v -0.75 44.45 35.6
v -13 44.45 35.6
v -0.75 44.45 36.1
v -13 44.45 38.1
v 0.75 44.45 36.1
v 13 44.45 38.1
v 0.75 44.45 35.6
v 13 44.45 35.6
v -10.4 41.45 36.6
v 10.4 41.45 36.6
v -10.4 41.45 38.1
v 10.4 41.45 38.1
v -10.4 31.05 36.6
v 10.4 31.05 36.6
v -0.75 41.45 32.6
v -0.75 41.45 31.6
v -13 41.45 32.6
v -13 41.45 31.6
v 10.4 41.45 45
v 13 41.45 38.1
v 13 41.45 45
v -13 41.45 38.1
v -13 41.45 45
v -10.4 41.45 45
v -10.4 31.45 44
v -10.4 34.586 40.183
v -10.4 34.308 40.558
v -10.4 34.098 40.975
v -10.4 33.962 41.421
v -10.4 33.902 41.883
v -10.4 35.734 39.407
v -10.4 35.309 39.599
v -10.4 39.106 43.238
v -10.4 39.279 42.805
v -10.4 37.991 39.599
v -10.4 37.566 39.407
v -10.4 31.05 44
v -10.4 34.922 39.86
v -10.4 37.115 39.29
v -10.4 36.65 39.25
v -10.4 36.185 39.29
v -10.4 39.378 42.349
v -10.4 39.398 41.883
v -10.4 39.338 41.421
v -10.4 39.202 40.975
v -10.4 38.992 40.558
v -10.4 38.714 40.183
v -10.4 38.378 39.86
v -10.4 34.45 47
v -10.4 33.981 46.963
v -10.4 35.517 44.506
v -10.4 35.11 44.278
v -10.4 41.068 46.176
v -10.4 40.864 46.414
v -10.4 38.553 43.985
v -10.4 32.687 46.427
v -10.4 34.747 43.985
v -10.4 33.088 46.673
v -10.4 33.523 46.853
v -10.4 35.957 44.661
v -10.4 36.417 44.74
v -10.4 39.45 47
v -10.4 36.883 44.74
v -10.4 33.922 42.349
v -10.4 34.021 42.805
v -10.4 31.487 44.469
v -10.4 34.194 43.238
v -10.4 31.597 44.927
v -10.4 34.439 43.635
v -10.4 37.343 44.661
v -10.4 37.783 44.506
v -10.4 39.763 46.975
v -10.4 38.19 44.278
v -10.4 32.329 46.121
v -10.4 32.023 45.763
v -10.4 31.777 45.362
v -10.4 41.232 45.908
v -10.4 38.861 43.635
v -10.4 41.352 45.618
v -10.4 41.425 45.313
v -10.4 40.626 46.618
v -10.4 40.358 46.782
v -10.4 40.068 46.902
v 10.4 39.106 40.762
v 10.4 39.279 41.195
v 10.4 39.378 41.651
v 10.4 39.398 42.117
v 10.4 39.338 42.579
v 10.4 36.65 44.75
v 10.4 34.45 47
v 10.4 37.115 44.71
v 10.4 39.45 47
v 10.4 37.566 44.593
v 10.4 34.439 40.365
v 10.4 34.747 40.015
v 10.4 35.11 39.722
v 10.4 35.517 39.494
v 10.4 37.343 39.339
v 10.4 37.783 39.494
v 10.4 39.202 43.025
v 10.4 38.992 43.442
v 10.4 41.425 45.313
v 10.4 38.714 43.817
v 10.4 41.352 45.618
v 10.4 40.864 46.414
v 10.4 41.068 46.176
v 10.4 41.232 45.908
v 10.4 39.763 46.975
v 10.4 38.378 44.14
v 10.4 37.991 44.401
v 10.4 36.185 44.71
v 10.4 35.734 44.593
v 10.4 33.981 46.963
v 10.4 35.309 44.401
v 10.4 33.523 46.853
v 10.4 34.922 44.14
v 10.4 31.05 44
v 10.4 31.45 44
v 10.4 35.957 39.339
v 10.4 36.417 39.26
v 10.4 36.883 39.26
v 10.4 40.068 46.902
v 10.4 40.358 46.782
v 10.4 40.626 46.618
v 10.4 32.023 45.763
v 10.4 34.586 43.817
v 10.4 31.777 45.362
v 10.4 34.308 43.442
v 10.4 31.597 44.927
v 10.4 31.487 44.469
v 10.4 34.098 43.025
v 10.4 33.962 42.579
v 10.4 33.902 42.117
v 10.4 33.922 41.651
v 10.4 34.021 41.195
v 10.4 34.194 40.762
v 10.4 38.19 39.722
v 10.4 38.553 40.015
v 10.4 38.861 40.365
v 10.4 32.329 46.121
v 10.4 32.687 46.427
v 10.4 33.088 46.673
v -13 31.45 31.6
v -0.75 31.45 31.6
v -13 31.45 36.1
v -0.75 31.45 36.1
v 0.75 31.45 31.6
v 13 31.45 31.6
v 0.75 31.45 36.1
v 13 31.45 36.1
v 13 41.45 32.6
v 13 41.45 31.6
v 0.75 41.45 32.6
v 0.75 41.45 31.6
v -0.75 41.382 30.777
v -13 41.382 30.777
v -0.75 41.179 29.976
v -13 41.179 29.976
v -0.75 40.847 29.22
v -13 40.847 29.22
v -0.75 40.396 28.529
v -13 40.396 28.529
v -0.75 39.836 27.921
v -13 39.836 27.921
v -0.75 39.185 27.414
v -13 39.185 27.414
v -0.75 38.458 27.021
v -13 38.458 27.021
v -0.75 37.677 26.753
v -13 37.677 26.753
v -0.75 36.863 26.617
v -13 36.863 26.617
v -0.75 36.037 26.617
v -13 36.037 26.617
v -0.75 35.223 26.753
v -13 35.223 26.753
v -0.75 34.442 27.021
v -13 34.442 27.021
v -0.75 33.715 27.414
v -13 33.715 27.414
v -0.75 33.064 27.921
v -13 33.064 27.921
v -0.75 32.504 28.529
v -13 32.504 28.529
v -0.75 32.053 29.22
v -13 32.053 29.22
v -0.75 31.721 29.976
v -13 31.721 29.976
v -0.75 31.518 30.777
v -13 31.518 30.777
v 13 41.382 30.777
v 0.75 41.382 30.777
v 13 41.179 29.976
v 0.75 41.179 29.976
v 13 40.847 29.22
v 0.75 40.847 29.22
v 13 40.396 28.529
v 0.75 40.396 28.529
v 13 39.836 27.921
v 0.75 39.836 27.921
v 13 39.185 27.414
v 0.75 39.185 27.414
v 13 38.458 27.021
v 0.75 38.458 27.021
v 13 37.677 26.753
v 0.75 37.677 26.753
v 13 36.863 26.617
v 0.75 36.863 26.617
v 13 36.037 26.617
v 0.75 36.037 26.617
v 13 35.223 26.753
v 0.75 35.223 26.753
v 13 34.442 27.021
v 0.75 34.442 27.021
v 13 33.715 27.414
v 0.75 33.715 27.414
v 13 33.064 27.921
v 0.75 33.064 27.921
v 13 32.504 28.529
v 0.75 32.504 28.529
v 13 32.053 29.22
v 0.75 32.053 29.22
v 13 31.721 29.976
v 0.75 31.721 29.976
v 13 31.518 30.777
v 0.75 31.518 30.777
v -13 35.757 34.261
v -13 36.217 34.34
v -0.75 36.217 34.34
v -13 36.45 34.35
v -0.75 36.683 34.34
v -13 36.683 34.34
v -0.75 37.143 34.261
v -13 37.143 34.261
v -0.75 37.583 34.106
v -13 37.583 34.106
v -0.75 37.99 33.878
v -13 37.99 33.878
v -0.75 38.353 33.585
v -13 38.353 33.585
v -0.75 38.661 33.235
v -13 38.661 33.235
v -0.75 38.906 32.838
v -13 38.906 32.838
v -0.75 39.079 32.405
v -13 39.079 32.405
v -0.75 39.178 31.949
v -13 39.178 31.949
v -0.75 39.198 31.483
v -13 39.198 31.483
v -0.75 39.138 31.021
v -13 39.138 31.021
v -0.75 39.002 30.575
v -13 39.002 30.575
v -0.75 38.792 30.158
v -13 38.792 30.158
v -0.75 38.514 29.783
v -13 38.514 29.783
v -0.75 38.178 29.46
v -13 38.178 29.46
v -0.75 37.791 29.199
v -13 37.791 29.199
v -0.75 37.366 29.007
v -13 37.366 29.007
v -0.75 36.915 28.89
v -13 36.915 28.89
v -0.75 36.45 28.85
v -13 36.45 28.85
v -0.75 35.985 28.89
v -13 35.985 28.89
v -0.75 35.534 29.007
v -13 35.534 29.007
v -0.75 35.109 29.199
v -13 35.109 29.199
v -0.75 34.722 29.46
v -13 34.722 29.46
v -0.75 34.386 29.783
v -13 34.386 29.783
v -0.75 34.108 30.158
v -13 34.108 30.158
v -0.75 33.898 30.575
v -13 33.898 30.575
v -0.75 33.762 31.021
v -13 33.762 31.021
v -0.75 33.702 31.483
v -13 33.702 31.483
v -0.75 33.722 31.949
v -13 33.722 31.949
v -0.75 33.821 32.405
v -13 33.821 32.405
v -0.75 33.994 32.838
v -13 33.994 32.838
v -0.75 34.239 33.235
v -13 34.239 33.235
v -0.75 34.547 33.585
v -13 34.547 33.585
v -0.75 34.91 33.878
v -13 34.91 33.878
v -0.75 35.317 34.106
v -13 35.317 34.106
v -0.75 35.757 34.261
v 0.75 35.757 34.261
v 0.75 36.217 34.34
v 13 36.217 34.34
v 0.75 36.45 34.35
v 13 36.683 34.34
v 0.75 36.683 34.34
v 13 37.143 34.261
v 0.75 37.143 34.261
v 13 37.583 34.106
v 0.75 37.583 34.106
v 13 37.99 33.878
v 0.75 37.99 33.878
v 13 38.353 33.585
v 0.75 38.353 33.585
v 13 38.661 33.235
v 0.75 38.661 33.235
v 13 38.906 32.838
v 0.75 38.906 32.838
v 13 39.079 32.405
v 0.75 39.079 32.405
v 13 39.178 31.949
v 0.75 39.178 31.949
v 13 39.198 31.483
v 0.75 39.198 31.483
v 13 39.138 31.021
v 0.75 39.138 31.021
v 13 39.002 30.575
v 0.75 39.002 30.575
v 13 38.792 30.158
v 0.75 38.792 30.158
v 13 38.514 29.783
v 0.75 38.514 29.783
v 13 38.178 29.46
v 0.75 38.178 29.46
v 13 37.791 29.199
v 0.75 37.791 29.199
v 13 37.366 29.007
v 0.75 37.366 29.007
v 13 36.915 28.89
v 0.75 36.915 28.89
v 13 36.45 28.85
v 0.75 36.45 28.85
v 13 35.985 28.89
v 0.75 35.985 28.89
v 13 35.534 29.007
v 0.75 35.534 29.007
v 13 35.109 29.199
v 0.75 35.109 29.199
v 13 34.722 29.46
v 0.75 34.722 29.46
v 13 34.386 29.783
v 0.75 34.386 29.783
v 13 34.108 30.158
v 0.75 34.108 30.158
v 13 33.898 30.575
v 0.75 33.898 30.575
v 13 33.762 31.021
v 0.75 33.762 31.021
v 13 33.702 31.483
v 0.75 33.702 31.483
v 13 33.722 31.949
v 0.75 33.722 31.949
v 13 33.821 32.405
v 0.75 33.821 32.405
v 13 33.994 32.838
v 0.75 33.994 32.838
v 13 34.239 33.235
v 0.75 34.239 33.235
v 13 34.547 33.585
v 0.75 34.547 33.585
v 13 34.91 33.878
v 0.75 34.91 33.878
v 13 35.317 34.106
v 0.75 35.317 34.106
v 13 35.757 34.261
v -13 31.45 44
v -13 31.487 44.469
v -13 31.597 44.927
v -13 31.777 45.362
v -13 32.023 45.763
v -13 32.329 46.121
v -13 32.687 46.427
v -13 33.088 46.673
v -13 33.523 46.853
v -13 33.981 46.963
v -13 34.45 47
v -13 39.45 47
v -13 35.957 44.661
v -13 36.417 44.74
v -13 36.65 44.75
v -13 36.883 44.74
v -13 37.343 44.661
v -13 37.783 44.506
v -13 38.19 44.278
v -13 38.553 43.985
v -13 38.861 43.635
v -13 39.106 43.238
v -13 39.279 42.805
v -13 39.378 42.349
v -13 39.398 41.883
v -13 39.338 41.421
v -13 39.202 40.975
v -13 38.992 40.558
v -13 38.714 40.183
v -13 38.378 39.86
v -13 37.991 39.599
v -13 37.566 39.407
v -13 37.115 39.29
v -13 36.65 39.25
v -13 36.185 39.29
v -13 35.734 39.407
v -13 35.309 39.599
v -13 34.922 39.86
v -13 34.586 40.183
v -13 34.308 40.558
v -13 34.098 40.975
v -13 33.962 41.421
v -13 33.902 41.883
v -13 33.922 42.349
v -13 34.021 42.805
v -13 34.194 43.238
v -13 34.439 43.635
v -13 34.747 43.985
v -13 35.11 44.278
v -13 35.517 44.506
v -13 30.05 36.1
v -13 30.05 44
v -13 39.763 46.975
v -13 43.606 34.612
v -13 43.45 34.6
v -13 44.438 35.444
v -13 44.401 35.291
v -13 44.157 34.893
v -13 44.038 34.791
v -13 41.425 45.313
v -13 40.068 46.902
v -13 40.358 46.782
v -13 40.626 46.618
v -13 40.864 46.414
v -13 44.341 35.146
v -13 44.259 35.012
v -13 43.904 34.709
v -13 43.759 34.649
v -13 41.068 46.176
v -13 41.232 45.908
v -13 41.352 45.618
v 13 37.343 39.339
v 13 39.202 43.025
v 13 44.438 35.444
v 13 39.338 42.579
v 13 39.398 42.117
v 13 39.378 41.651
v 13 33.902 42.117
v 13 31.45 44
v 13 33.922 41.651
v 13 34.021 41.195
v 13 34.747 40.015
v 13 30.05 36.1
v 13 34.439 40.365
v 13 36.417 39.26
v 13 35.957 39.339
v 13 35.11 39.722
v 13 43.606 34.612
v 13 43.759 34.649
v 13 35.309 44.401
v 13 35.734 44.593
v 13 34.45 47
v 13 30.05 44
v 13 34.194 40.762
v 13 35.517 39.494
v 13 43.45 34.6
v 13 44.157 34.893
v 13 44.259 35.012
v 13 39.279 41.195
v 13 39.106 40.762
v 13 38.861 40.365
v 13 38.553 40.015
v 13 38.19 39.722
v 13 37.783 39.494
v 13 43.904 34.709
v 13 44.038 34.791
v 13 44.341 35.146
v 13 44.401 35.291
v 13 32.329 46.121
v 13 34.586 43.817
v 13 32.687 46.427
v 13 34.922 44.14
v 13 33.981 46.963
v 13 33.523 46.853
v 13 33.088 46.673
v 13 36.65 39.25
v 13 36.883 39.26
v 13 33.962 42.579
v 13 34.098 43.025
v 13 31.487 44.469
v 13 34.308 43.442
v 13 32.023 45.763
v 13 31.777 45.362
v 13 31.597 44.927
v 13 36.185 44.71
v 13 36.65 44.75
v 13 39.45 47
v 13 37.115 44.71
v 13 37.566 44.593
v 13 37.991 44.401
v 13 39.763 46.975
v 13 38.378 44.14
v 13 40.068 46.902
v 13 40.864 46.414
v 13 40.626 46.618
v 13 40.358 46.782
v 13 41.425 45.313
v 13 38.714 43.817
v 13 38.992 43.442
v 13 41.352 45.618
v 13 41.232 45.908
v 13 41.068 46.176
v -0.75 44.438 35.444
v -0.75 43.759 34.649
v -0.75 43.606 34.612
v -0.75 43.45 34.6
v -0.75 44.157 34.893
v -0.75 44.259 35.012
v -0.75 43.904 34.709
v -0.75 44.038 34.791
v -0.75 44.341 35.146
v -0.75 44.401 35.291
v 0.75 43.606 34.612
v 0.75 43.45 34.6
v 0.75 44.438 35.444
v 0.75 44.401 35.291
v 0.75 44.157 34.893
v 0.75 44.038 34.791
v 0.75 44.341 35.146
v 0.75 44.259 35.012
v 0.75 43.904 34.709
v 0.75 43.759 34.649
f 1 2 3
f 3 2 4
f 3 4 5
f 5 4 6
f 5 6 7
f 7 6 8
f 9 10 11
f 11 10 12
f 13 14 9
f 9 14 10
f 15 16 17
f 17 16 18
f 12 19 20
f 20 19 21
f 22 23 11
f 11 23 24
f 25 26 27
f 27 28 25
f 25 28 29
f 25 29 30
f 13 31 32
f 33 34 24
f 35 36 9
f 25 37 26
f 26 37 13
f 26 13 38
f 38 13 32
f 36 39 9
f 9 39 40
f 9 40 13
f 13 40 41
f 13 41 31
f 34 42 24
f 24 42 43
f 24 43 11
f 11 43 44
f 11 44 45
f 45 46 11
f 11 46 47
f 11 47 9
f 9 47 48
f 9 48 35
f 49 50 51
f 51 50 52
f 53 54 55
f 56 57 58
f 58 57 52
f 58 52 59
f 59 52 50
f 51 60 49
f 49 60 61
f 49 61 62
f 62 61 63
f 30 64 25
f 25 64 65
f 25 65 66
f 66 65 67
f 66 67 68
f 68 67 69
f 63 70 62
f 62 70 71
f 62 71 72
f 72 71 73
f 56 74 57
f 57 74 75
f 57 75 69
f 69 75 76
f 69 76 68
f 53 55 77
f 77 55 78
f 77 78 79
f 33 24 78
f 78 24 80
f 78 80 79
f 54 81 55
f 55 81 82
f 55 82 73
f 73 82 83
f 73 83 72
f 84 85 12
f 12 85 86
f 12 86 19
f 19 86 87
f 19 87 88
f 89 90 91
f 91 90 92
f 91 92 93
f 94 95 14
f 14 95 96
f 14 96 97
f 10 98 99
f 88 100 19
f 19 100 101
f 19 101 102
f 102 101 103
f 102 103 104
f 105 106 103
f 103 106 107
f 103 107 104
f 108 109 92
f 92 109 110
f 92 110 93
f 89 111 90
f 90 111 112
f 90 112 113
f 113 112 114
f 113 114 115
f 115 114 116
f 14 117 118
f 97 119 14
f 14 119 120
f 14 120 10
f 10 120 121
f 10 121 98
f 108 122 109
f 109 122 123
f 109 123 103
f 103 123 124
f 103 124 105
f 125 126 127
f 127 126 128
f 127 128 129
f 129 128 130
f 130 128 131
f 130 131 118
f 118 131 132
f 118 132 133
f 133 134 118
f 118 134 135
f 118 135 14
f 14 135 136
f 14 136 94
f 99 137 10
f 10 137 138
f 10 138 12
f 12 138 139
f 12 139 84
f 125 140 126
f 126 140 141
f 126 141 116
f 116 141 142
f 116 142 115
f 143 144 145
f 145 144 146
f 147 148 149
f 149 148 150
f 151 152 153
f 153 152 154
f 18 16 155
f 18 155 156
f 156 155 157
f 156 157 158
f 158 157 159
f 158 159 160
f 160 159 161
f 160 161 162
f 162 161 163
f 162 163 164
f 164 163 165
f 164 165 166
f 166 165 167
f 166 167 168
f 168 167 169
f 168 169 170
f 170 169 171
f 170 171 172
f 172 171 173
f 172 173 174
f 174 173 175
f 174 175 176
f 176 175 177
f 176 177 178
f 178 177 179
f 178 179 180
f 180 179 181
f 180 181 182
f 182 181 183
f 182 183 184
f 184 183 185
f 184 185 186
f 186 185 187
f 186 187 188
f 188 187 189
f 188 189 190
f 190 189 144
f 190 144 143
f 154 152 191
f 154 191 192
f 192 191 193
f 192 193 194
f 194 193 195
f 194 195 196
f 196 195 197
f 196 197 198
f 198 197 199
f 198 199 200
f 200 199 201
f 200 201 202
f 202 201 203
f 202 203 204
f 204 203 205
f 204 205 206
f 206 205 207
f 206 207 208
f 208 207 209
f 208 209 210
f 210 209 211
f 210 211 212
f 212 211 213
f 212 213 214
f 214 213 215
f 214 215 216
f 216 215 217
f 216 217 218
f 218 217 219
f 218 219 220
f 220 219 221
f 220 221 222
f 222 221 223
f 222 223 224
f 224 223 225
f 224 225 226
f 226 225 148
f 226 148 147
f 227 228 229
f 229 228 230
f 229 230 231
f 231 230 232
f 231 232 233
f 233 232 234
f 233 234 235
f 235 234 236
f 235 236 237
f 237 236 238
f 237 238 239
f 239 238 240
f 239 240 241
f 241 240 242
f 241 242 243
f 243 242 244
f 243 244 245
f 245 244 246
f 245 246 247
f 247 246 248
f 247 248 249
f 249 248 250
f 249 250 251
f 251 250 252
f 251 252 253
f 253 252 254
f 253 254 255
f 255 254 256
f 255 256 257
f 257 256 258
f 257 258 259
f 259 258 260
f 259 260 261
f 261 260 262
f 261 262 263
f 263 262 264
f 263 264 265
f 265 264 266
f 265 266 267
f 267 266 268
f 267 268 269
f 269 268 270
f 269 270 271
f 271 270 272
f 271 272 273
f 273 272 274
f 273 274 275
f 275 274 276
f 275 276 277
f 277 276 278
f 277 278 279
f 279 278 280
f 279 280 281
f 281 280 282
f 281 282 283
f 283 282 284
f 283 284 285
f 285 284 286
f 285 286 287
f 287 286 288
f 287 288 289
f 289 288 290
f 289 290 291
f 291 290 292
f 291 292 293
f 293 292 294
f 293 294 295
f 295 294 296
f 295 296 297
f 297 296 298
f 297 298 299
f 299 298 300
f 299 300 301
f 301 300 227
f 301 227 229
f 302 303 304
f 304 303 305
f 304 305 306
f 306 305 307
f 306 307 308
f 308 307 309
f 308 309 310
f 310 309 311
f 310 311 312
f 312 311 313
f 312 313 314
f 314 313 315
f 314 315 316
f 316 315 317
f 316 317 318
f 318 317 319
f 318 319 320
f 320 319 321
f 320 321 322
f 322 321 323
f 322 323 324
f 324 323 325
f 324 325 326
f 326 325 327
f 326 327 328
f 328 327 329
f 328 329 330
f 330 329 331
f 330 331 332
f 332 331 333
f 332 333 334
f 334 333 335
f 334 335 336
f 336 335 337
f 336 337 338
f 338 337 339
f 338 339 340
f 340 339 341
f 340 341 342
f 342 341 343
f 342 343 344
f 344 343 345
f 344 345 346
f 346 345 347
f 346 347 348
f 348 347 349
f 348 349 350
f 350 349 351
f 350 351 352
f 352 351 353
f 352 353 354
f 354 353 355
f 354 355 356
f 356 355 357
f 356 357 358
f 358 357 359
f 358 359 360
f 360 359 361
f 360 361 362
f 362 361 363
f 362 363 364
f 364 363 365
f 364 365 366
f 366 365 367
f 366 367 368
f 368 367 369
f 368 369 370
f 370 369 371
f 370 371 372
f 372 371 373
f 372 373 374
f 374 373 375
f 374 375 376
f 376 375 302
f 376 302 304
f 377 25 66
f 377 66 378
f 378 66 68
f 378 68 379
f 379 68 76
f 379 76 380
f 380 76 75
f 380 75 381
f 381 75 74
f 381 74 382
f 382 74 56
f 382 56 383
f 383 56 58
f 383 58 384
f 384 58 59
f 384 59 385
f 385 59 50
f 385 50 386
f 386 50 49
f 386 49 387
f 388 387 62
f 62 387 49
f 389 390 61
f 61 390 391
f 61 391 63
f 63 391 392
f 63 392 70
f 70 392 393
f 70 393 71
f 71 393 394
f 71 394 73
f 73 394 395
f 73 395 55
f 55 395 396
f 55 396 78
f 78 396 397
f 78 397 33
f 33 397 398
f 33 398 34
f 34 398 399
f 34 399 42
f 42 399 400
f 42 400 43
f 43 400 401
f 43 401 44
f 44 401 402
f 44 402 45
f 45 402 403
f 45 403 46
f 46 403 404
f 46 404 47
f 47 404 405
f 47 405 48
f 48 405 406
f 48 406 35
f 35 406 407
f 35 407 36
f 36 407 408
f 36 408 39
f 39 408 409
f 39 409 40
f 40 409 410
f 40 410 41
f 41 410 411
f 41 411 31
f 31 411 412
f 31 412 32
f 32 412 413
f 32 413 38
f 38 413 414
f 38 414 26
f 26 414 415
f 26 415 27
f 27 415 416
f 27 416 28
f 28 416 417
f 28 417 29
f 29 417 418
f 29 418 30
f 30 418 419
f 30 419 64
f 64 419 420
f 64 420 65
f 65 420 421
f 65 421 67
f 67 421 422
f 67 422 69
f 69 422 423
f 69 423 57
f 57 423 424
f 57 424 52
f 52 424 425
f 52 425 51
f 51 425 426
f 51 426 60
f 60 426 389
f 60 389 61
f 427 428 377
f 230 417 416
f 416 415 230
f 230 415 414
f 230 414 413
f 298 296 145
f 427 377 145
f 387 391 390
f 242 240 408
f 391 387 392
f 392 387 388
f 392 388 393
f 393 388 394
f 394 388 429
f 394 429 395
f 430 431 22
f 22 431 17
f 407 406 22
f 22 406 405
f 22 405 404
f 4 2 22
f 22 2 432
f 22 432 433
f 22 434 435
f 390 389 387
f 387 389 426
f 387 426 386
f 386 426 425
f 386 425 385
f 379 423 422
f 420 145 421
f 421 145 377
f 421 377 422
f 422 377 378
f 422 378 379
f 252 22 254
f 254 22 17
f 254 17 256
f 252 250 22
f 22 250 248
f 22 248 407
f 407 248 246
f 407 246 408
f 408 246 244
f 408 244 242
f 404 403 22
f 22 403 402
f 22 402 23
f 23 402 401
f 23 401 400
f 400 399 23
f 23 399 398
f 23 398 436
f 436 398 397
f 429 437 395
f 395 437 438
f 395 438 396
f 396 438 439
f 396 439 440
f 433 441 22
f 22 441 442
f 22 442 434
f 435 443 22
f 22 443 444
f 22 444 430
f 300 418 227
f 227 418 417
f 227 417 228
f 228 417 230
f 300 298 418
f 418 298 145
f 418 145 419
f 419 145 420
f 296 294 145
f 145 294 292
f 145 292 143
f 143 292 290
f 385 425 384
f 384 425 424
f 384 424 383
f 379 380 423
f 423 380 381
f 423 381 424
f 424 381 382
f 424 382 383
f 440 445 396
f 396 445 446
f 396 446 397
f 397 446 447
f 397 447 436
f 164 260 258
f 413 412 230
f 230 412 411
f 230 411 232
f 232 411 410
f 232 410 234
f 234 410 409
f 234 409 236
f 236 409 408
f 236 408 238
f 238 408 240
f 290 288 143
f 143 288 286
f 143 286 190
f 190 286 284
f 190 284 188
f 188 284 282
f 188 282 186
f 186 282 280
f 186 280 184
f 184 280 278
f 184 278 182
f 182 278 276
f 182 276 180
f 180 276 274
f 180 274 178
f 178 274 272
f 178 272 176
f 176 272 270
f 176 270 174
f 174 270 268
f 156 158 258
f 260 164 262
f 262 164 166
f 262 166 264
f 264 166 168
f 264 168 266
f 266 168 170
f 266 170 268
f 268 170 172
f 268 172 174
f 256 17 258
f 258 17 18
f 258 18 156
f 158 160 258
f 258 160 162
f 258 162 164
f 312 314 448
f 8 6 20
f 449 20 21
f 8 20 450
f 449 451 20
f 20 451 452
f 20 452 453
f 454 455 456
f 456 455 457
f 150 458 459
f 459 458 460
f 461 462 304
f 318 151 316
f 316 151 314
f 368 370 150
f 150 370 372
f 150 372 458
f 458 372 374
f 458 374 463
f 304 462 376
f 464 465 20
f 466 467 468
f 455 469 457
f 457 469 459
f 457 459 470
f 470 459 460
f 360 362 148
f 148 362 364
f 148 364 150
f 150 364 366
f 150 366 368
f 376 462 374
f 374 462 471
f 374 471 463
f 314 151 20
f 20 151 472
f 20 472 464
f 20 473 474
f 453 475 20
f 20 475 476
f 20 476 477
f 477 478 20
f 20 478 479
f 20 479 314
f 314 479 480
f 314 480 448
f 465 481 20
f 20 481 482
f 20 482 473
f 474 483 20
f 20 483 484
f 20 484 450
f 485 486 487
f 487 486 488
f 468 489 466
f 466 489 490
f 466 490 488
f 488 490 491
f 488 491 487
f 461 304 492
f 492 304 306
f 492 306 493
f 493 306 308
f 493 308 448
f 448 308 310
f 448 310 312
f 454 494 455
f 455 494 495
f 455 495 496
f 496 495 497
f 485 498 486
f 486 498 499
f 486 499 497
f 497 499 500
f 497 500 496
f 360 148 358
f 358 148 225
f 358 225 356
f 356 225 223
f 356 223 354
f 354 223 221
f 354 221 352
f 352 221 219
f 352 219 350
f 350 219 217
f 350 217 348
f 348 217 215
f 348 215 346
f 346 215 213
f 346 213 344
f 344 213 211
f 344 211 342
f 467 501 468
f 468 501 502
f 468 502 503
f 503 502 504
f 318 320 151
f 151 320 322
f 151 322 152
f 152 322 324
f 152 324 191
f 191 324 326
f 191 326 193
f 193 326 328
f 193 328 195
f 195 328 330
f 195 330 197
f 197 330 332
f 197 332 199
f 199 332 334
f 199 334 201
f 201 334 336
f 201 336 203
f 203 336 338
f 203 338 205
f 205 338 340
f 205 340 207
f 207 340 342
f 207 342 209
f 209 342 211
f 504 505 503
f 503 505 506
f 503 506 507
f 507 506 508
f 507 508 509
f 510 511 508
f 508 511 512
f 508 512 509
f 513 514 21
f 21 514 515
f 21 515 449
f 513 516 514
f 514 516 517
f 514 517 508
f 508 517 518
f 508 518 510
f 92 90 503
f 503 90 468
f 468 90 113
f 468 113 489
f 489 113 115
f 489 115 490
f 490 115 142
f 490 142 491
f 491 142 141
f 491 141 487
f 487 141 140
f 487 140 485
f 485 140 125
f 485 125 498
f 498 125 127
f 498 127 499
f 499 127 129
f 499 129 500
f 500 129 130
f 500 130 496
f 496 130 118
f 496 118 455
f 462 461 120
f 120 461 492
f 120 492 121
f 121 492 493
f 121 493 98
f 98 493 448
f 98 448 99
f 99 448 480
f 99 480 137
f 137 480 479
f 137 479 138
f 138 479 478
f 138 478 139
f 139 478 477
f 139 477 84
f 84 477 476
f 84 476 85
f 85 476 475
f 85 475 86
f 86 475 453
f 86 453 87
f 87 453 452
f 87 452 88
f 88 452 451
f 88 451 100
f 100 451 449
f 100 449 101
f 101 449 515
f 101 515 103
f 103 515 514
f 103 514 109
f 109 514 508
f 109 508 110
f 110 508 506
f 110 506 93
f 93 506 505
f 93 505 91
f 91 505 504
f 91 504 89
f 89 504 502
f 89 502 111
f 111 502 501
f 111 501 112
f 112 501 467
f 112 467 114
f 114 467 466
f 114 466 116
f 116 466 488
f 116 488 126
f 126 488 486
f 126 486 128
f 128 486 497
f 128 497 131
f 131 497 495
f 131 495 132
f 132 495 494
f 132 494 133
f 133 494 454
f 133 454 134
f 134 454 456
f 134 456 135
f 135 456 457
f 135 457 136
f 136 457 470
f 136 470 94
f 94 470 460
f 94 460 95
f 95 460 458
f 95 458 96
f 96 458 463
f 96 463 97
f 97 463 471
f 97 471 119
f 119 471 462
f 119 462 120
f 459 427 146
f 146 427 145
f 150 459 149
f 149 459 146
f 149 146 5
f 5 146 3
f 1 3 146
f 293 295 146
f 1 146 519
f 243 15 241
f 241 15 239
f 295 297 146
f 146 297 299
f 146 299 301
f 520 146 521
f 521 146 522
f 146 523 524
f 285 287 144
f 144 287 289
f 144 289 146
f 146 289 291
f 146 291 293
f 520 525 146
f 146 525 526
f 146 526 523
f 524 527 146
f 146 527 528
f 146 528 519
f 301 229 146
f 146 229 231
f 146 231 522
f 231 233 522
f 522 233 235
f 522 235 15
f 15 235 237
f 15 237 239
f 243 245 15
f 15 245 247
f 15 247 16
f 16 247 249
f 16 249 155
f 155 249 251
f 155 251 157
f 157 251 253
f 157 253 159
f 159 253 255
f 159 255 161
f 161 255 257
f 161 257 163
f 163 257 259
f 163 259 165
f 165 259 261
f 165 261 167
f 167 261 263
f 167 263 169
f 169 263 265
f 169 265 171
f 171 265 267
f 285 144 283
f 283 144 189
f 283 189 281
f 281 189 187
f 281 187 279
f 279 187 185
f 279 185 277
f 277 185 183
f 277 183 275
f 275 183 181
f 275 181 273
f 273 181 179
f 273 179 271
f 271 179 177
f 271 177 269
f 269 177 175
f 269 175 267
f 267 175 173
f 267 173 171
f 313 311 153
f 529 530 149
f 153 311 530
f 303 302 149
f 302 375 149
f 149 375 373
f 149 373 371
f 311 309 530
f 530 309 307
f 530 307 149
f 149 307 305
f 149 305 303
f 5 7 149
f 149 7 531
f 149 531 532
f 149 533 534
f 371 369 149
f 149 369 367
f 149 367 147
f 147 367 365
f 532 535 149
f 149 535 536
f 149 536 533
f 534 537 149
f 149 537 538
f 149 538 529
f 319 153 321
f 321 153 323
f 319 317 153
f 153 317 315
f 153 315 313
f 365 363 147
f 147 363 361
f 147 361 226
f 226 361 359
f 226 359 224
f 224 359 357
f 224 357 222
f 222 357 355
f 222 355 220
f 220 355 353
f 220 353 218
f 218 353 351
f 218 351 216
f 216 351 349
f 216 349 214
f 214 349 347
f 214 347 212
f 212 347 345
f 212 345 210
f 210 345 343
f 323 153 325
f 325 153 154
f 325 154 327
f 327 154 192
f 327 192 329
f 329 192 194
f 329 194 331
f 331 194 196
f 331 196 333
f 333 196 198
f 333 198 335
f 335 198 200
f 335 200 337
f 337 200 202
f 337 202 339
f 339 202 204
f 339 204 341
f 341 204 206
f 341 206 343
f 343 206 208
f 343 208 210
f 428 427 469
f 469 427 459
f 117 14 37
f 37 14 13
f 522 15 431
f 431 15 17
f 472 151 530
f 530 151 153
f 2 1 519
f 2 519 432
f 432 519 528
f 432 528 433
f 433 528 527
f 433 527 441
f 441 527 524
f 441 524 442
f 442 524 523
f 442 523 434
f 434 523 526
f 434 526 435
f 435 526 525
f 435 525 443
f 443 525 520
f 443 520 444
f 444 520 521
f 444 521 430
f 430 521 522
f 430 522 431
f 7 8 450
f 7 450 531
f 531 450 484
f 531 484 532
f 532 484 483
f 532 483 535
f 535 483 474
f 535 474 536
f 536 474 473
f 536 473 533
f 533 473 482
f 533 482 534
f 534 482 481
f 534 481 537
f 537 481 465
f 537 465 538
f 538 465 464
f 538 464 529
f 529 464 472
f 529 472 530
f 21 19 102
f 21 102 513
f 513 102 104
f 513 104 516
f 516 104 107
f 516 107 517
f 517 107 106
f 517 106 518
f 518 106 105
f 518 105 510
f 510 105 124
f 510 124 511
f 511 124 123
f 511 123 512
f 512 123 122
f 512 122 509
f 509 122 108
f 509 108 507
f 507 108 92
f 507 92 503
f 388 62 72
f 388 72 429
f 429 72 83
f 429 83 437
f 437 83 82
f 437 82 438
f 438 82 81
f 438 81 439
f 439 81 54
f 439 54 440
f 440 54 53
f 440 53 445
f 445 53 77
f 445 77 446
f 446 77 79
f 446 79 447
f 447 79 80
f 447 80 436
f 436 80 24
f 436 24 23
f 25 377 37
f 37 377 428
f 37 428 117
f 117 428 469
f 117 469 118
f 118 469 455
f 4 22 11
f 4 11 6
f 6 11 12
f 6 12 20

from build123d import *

# Parameters (mm, degrees)
SKETCH3_R            = 2.75
BOSS_EXTRUDE1_DEPTH  = 3
SKETCH4_R            = 2.75
BOSS_EXTRUDE2_DEPTH  = 3
BOSS_EXTRUDE3_DEPTH  = 3
BOSS_EXTRUDE4_START  = -3
SKETCH6_R            = 2.75
BOSS_EXTRUDE4_DEPTH  = 3
CUT_EXTRUDE1_START   = -0.4
CUT_EXTRUDE1_DEPTH   = 0.4
CUT_EXTRUDE2_DEPTH   = 0.4
BOSS_EXTRUDE5_DEPTH  = 26
SKETCH11_W           = 1.5
SKETCH11_H           = 10.4
CUT_EXTRUDE4_DEPTH   = 9.5
SKETCH13_W           = 13.75
SKETCH13_H           = 0.5
BOSS_EXTRUDE6_DEPTH  = 1
BOSS_EXTRUDE7_DEPTH  = 1
BOSS_EXTRUDE8_DEPTH  = 3
CHAMFER1_SIZE        = 2
FILLET1_R            = 1
SKETCH16_W           = 26
SKETCH16_H           = 3
BOSS_EXTRUDE9_DEPTH  = 1
FILLET2_R            = 2
BOSS_EXTRUDE11_DEPTH = 2.4
BOSS_EXTRUDE12_DEPTH = 1
CUT_EXTRUDE5_DEPTH   = 0.5


with BuildPart() as part:
    # Sketch3 → Boss-Extrude1 (new body)
    with BuildSketch(Plane(origin=(10, 0, 0), x_dir=(0, 0, -1), z_dir=(1, 0, 0))):
        with BuildLine():
            Line((-37, 41.45), (-42, 41.45))
            Line((-42, 41.45), (-47, 41.45))
            Line((-47, 41.45), (-47, 34.45))
            ThreePointArc((-47, 34.45), (-46.121320344, 32.328679656), (-44, 31.45))
            Line((-44, 31.45), (-40, 31.45))
            ThreePointArc((-40, 31.45), (-37.878679656, 32.328679656), (-37, 34.45))
            Line((-37, 34.45), (-37, 41.45))
        make_face()
        with Locations((-42, 36.65)):
            Circle(SKETCH3_R, mode=Mode.SUBTRACT)
    extrude(amount=BOSS_EXTRUDE1_DEPTH)

    # Sketch6 → Boss-Extrude4 (add)
    with BuildSketch(Plane(origin=(13, 0, 0), x_dir=(0, 0, -1), z_dir=(1, 0, 0)).offset(BOSS_EXTRUDE4_START)):
        with BuildLine():
            Line((-36.6, 31.45), (-36.6, 41.45))
            Line((-36.6, 41.45), (-47, 41.45))
            Line((-47, 41.45), (-47, 34.45))
            ThreePointArc((-47, 34.45), (-46.121320344, 32.328679656), (-44, 31.45))
            Line((-44, 31.45), (-36.6, 31.45))
        make_face()
        with Locations(Location((-42, 36.65, 0), (0, 0, 180))):
            Circle(SKETCH6_R, mode=Mode.SUBTRACT)
    extrude(amount=BOSS_EXTRUDE4_DEPTH)

    # Sketch8 → Cut-Extrude2 (cut)
    with BuildSketch(Plane.ZY.offset(-10)):
        with BuildLine():
            Line((47, 41.45), (36.6, 41.45))
            Line((36.6, 41.45), (36.6, 31.45))
            Line((36.6, 31.45), (44, 31.45))
            ThreePointArc((44, 31.45), (46.121320344, 32.328679656), (47, 34.45))
            Line((47, 34.45), (47, 41.45))
        make_face()
    extrude(amount=-CUT_EXTRUDE2_DEPTH, mode=Mode.SUBTRACT)



with BuildPart() as body_2:
    # Sketch4 → Boss-Extrude2 (new body)
    with BuildSketch(Plane.ZY.offset(10)):
        with BuildLine():
            Line((47, 41.45), (37, 41.45))
            Line((37, 41.45), (37, 34.45))
            ThreePointArc((37, 34.45), (37.878679656, 32.328679656), (40, 31.45))
            Line((40, 31.45), (44, 31.45))
            ThreePointArc((44, 31.45), (46.121320344, 32.328679656), (47, 34.45))
            Line((47, 34.45), (47, 41.45))
        make_face()
        with Locations((42, 36.65)):
            Circle(SKETCH4_R, mode=Mode.SUBTRACT)
    extrude(amount=BOSS_EXTRUDE2_DEPTH)

    # Sketch5 → Boss-Extrude3 (add)
    with BuildSketch(Plane.ZY.offset(13)):
        with BuildLine():
            Line((37, 41.45), (36.6, 41.45))
            Line((36.6, 41.45), (36.6, 31.45))
            Line((36.6, 31.45), (40, 31.45))
            ThreePointArc((40, 31.45), (37.878679656, 32.328679656), (37, 34.45))
            Line((37, 34.45), (37, 41.45))
        make_face()
    extrude(amount=-BOSS_EXTRUDE3_DEPTH)

    # Sketch7 → Cut-Extrude1 (cut)
    with BuildSketch(Plane(origin=(-10, 0, 0), x_dir=(0, 0, -1), z_dir=(1, 0, 0)).offset(CUT_EXTRUDE1_START)):
        with BuildLine():
            Line((-36.6, 41.45), (-47, 41.45))
            Line((-47, 41.45), (-47, 34.45))
            ThreePointArc((-47, 34.45), (-46.121320344, 32.328679656), (-44, 31.45))
            Line((-44, 31.45), (-36.6, 31.45))
            Line((-36.6, 31.45), (-36.6, 41.45))
        make_face()
    extrude(amount=CUT_EXTRUDE1_DEPTH, mode=Mode.SUBTRACT)


with BuildPart() as part_1:
    add(part.part)

    add(body_2.part)  # Boss-Extrude5 merges body 2
    # Sketch9 → Boss-Extrude5 (add)
    with BuildSketch(Plane(origin=(13, 0, 0), x_dir=(0, 0, -1), z_dir=(1, 0, 0))):
        with BuildLine():
            ThreePointArc((-31.6, 41.45), (-35.135533906, 39.985533906), (-36.6, 36.45))
            Line((-36.6, 36.45), (-34.35, 36.45))
            ThreePointArc((-34.35, 36.45), (-31.6, 39.2), (-28.85, 36.45))
            Line((-28.85, 36.45), (-26.6, 36.45))
            ThreePointArc((-26.6, 36.45), (-28.064466094, 39.985533906), (-31.6, 41.45))
        make_face()
        with BuildLine():
            Line((-34.35, 36.45), (-36.6, 36.45))
            ThreePointArc((-36.6, 36.45), (-35.135533906, 32.914466094), (-31.6, 31.45))
            ThreePointArc((-31.6, 31.45), (-28.064466094, 32.914466094), (-26.6, 36.45))
            Line((-26.6, 36.45), (-28.85, 36.45))
            ThreePointArc((-28.85, 36.45), (-31.6, 33.7), (-34.35, 36.45))
        make_face()
        with BuildLine():
            Line((-36.6, 41.45), (-36.6, 36.45))
            ThreePointArc((-36.6, 36.45), (-35.135533906, 39.985533906), (-31.6, 41.45))
            Line((-31.6, 41.45), (-36.6, 41.45))
        make_face()
        with BuildLine():
            Line((-36.6, 36.45), (-36.6, 31.45))
            Line((-36.6, 31.45), (-34.34369351, 31.45))
            Line((-34.34369351, 31.45), (-31.6, 31.45))
            ThreePointArc((-31.6, 31.45), (-35.135533906, 32.914466094), (-36.6, 36.45))
        make_face()
    extrude(amount=-BOSS_EXTRUDE5_DEPTH)

    # Sketch11 → Cut-Extrude4 (cut, symmetric)
    with BuildSketch(Plane.XY.offset(26.6)):
        with Locations((0, 36.65)):
            Rectangle(SKETCH11_W, SKETCH11_H)
    extrude(amount=CUT_EXTRUDE4_DEPTH, both=True, mode=Mode.SUBTRACT)



with BuildPart() as body_2_2:
    # Sketch13 → Boss-Extrude6 (new body)
    with BuildSketch(Plane(origin=(0, 31.05, 0), x_dir=(-1, 0, 0), z_dir=(0, -1, 0))):
        Polygon((-0.75, -36.6), (-10.4, -36.6), (-13, -36.6), (-13, -41.6), (13, -41.6), (13, -36.6), align=None)
        with Locations((6.125, -36.35)):
            Rectangle(SKETCH13_W, SKETCH13_H)
        Polygon((-13, -36.6), (-10.4, -36.6), (-0.75, -36.6), (-0.75, -36.1), (-13, -36.1), align=None)
    extrude(amount=BOSS_EXTRUDE6_DEPTH)


with BuildPart() as part_2:
    add(part_1.part)

    add(body_2_2.part)  # Boss-Extrude7 merges body 2 2
    # Sketch14 → Boss-Extrude7 (add)
    with BuildSketch(Plane.XZ.offset(-31.45)):
        Polygon((10.4, 41.6), (13, 41.6), (13, 36.1), (-13, 36.1), (-13, 41.6), (-10.4, 41.6), (-10.4, 36.6), (10.4, 36.6), align=None)
    extrude(amount=BOSS_EXTRUDE7_DEPTH)

    # Sketch15 → Boss-Extrude8 (add)
    with BuildSketch(Plane(origin=(0, 41.45, 0), x_dir=(1, 0, 0), z_dir=(0, 1, 0))):
        Polygon((-10.4, -36.6), (10.4, -36.6), (13, -36.6), (13, -34.6), (0.75, -34.6), (0.75, -36.1), (-0.75, -36.1), (-0.75, -34.6), (-13, -34.6), (-13, -36.6), align=None)
    extrude(amount=BOSS_EXTRUDE8_DEPTH)

    # Chamfer1
    chamfer1_edges = [part_2.edges().sort_by_distance(p)[0] for p in [
        (-6.875, 41.45, 34.6),
        (6.875, 41.45, 34.6),
    ]]
    chamfer(chamfer1_edges, length=CHAMFER1_SIZE)

    # Fillet1
    fillet1_edges = [part_2.edges().sort_by_distance(p)[0] for p in [
        (-6.875, 44.45, 34.6),
        (6.875, 44.45, 34.6),
    ]]
    fillet(fillet1_edges, radius=FILLET1_R - 0.0001)  # a hair under: the kernel refuses the full size

    # Sketch16 → Boss-Extrude9 (add)
    with BuildSketch(Plane.XY.offset(36.6)):
        with Locations((0, 42.95)):
            Rectangle(SKETCH16_W, SKETCH16_H)
    extrude(amount=BOSS_EXTRUDE9_DEPTH)

    # Fillet2
    fillet2_edges = [part_2.edges().sort_by_distance(p)[0] for p in [
        (-11.7, 41.45, 47),
        (11.7, 41.45, 47),
    ]]
    fillet(fillet2_edges, radius=FILLET2_R)

    # Sketch17 → Boss-Extrude11 (add)
    with BuildSketch(Plane.XY.offset(41.6)):
        Polygon((10.4, 31.05), (-10.4, 31.05), (-10.4, 31.45), (-13, 31.45), (-13, 30.05), (13, 30.05), (13, 31.45), (10.4, 31.45), align=None)
    extrude(amount=BOSS_EXTRUDE11_DEPTH)

    # Sketch18 → Boss-Extrude12 (add)
    with BuildSketch(Plane.XY.offset(37.6)):
        Polygon((-13, 44.45), (-13, 41.45), (-10.4, 41.45), (10.4, 41.45), (13, 41.45), (13, 44.45), align=None)
    extrude(amount=BOSS_EXTRUDE12_DEPTH)

    # Sketch19 → Cut-Extrude5 (cut)
    with BuildSketch(Plane.XY.offset(38.6)):
        Polygon((13, 44.45), (-13, 44.45), (-13, 41.45), (-10.4, 41.45), (10.4, 41.45), (13, 41.45), align=None)
    extrude(amount=-CUT_EXTRUDE5_DEPTH, mode=Mode.SUBTRACT)


solid = part_2.part
